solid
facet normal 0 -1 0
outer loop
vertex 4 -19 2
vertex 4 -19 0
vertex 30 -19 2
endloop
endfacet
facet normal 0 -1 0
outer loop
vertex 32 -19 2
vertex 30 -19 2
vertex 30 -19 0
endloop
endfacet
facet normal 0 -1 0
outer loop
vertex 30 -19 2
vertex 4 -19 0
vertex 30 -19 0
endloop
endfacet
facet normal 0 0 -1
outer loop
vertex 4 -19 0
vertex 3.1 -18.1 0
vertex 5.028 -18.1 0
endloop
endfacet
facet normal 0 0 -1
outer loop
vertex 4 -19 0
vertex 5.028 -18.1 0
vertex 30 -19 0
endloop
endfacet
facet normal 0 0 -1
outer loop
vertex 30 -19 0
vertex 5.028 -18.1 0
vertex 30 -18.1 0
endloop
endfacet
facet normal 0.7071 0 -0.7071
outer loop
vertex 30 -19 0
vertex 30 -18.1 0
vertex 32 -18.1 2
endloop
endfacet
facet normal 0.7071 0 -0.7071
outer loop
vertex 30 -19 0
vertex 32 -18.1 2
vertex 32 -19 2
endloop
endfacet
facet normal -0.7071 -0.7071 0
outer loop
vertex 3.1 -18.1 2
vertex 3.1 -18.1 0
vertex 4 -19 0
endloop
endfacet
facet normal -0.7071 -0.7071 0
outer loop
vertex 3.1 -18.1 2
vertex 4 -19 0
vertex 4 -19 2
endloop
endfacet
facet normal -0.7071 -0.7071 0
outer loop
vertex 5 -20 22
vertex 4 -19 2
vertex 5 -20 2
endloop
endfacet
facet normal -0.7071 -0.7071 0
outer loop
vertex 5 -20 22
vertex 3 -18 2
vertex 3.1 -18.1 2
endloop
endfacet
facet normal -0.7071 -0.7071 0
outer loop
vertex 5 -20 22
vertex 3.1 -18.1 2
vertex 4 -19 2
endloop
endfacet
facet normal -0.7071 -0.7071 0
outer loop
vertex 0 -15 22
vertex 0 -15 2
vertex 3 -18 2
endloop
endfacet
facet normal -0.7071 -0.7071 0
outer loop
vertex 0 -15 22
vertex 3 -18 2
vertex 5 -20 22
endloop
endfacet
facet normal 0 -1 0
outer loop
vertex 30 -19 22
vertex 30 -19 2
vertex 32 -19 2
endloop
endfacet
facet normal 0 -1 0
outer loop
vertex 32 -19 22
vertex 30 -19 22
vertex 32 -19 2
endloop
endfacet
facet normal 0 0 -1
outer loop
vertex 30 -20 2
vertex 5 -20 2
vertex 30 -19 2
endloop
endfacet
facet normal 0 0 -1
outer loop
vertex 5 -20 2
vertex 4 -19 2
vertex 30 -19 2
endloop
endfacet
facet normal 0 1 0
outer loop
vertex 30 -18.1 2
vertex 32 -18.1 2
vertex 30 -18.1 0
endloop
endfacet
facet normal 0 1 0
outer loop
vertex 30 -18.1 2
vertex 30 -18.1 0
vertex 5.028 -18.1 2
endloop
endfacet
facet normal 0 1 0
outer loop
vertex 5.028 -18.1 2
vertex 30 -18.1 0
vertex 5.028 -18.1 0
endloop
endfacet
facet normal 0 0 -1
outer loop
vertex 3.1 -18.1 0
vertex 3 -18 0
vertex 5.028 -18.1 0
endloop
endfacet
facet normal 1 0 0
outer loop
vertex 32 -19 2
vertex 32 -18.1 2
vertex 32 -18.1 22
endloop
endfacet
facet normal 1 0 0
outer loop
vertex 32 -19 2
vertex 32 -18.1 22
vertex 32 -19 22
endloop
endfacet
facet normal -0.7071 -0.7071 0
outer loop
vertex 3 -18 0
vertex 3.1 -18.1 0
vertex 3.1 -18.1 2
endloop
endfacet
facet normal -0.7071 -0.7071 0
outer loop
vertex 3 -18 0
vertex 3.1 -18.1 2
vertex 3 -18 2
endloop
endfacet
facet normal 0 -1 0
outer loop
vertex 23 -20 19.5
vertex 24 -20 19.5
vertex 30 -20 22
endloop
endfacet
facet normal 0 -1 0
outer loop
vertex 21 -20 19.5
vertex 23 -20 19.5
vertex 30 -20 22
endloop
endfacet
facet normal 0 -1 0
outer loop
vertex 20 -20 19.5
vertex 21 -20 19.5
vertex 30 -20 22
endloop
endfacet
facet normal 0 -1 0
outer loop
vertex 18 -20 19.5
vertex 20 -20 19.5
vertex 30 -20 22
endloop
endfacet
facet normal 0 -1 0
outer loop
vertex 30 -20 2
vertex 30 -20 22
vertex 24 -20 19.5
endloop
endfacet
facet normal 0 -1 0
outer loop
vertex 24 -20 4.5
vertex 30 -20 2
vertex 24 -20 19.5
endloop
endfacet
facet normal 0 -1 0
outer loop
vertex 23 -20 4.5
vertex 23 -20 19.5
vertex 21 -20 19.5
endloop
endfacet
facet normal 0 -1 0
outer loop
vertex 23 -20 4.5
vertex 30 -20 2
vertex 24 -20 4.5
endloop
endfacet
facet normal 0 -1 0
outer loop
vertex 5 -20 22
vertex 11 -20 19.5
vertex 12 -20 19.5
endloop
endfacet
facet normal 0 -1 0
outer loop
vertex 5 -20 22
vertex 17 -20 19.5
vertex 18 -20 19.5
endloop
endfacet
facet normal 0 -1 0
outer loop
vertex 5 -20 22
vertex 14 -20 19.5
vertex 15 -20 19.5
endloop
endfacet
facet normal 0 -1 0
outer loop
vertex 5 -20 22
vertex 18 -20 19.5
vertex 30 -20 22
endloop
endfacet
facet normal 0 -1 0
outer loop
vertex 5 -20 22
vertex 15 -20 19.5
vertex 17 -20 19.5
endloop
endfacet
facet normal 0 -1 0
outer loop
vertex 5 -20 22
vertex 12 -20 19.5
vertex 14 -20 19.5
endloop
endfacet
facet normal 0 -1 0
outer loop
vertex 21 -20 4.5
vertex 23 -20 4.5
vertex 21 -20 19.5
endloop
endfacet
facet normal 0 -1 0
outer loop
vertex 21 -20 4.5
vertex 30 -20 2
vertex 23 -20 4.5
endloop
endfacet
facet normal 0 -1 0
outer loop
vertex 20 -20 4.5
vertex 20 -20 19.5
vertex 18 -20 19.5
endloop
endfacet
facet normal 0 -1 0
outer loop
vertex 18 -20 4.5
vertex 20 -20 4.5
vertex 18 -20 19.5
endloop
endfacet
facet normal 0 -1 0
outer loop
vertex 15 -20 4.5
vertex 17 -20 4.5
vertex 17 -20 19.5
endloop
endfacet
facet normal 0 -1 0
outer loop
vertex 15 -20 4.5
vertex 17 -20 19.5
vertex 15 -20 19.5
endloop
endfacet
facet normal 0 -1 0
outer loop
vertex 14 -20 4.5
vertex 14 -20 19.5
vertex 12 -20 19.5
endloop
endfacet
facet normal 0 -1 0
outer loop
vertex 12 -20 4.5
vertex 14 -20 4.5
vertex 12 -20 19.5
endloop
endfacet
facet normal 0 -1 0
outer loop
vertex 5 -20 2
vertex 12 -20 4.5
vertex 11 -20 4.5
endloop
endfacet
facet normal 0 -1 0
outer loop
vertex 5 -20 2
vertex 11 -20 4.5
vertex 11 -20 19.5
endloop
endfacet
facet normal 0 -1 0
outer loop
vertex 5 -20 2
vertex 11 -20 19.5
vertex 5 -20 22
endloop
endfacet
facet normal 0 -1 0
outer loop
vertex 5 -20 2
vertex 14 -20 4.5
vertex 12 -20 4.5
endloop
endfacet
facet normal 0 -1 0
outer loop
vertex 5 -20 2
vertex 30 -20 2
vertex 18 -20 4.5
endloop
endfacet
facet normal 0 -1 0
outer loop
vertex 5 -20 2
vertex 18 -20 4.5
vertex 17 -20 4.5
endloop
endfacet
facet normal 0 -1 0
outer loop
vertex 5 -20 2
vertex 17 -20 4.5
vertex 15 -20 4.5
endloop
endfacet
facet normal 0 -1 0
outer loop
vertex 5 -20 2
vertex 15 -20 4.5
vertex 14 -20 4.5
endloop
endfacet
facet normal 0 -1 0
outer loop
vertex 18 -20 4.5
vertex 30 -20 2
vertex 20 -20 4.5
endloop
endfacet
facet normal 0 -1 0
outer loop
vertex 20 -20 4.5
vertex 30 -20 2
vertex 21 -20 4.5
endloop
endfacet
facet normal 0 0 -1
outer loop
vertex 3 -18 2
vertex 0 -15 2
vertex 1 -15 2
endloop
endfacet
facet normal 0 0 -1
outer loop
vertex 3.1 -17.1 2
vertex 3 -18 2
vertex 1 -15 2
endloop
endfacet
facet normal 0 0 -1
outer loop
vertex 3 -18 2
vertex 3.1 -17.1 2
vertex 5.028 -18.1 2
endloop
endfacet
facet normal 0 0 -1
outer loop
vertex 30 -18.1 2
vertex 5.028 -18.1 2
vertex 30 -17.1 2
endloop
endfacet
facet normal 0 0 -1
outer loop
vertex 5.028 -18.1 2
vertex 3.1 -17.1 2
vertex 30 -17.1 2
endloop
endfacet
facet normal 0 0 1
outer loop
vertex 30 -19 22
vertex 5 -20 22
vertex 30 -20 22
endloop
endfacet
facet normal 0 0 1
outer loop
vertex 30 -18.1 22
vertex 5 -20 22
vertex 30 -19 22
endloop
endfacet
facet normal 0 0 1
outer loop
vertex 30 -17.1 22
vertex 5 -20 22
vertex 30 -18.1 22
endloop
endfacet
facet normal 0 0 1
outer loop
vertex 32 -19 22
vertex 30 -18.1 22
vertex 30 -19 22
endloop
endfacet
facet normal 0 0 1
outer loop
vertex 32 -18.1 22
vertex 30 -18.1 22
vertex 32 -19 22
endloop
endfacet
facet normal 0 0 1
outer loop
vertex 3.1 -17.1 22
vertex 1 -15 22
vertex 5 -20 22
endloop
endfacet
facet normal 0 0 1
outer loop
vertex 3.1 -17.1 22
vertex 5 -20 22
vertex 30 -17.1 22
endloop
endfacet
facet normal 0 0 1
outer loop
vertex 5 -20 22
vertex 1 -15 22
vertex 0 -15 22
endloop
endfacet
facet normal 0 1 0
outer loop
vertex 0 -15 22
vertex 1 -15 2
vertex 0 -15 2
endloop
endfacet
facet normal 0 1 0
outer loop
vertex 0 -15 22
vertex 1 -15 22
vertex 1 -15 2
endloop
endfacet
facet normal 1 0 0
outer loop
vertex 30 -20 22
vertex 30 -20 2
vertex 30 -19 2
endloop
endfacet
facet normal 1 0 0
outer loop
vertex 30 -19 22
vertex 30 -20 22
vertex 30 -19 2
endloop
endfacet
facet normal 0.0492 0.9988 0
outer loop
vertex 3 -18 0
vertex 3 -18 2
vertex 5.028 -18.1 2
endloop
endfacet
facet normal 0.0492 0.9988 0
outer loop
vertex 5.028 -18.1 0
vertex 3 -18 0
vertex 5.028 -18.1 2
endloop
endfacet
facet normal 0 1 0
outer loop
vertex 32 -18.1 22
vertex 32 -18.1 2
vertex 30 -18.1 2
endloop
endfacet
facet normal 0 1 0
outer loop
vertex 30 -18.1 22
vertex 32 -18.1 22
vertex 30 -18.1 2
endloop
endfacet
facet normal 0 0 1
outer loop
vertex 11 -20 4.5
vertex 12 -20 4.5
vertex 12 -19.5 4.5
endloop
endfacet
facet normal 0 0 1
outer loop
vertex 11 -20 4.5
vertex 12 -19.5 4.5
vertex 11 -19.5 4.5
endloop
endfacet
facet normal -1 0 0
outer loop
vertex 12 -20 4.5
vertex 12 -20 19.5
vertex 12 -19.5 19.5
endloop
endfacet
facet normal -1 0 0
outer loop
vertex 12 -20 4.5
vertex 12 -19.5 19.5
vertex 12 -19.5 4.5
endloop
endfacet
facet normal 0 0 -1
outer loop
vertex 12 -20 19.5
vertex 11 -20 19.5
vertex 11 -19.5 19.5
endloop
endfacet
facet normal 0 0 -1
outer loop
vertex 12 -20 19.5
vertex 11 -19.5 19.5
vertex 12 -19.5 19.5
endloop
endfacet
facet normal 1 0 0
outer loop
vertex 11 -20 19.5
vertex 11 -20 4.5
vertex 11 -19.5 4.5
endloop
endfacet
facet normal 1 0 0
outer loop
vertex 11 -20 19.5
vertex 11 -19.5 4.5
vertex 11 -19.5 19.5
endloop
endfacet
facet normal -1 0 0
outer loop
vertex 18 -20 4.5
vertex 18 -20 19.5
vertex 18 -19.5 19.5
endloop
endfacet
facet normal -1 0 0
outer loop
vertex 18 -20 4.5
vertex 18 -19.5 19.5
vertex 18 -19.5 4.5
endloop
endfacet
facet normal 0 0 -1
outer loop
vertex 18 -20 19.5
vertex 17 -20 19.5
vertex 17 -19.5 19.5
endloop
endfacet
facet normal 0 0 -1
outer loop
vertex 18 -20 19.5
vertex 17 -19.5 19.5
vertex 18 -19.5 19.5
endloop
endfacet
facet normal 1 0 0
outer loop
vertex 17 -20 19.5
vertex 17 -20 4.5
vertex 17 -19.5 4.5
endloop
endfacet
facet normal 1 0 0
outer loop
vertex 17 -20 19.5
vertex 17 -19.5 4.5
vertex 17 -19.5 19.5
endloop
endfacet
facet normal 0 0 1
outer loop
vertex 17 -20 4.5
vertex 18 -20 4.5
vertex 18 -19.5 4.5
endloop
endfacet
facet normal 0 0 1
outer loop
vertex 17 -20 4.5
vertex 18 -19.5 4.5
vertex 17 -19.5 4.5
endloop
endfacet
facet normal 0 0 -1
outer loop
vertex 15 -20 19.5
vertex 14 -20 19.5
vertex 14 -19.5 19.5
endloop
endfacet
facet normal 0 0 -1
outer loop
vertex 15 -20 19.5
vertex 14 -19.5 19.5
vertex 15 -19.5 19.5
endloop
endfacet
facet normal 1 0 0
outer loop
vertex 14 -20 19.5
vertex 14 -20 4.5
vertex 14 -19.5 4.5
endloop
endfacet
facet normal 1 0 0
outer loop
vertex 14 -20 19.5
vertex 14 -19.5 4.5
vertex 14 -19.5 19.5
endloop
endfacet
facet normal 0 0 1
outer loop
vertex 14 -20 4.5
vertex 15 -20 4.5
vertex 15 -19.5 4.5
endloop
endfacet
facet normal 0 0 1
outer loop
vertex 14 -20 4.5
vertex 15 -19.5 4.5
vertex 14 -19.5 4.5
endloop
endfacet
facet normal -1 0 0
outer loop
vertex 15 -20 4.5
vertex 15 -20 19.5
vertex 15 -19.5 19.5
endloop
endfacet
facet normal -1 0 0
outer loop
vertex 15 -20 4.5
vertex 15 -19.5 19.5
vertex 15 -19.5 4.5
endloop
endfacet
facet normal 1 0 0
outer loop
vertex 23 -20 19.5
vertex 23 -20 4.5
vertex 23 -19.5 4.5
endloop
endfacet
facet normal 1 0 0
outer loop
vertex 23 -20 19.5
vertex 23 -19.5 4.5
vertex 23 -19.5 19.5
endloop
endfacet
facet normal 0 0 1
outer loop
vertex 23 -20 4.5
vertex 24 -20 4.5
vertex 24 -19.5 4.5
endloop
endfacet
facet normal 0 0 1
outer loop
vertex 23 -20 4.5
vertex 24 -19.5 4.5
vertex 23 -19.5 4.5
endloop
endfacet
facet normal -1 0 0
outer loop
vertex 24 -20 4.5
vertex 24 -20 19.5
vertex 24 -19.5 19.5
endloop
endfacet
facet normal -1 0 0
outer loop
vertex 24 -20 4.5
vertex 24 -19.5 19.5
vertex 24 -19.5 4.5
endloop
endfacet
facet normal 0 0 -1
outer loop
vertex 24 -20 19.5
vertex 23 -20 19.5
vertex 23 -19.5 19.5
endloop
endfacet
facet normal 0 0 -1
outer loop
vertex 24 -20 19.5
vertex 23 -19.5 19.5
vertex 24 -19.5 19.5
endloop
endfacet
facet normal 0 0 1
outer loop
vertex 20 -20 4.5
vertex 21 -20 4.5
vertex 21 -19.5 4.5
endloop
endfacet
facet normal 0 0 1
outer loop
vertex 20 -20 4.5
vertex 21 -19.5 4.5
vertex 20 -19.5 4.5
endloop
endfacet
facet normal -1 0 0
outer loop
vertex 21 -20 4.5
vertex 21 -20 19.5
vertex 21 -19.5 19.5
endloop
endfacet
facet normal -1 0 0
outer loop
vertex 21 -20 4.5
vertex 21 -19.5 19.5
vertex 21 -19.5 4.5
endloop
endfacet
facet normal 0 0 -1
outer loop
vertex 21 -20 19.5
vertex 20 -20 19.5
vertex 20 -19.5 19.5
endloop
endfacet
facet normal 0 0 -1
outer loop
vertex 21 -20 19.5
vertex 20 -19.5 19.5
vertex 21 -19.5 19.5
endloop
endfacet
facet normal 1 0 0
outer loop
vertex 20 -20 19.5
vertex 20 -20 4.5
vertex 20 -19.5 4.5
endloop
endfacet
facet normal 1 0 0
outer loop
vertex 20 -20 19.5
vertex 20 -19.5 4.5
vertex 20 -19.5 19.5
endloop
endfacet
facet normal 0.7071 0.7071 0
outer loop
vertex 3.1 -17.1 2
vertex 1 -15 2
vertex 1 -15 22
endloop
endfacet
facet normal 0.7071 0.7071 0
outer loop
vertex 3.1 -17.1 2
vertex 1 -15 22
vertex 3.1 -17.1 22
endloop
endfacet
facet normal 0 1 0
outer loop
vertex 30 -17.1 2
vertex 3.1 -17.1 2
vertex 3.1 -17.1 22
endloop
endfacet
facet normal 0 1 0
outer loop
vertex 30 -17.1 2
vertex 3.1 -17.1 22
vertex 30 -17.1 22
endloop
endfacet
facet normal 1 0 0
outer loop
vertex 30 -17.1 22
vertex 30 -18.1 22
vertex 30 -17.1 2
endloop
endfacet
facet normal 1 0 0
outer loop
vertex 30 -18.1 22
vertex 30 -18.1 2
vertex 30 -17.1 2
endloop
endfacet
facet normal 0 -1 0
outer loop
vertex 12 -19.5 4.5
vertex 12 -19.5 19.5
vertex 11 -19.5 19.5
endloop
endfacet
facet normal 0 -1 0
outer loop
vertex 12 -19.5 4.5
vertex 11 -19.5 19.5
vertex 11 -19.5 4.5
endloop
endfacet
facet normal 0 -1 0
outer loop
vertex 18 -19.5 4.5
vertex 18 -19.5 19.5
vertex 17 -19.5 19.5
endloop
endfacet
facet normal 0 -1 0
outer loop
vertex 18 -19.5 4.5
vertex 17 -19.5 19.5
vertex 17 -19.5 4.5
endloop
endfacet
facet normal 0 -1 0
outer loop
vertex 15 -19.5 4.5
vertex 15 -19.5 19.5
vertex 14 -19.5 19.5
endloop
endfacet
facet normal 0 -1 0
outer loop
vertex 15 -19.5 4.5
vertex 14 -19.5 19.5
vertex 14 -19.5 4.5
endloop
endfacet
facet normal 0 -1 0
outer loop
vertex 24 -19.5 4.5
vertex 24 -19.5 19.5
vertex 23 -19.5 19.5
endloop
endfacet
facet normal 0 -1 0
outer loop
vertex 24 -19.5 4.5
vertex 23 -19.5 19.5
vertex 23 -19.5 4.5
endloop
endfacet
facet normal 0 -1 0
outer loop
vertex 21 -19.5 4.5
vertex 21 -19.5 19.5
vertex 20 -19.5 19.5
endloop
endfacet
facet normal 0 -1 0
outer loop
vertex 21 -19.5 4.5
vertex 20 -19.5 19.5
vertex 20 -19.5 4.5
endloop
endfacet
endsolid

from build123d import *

# Parameters (mm, degrees)
SKETCH_W        = 32
SKETCH_H        = 20
PAD_DEPTH       = 22
CHAMFER_SIZE    = 5
SKETCH001_W     = 32
SKETCH001_H     = 15
POCKET_DEPTH    = 22
SKETCH002_W     = 32
SKETCH002_H     = 1
POCKET001_DEPTH = 2
SKETCH003_W     = 32
SKETCH003_H     = 3.1
POCKET002_DEPTH = 2
SKETCH004_W     = 2
SKETCH004_H     = 1
SKETCH004_H_2   = 3.1
POCKET003_DEPTH = 20
PAD001_DEPTH    = 2
POCKET004_DEPTH = 20
SKETCH007_W     = 1
SKETCH007_H     = 15
POCKET005_DEPTH = 0.5
CHAMFER001_SIZE = 2


with BuildPart() as part:
    # Sketch → Pad (new body)
    with BuildSketch(Plane.XY):
        with Locations((16, -10)):
            Rectangle(SKETCH_W, SKETCH_H)
    extrude(amount=PAD_DEPTH)

    # Chamfer
    chamfer_edges = [part.edges().sort_by_distance(p)[0] for p in [
        (0, -20, 11),
    ]]
    chamfer(chamfer_edges, length=CHAMFER_SIZE)

    # Sketch001 → Pocket (cut)
    with BuildSketch(Plane.XY.offset(22)):
        with Locations((16, -7.5)):
            Rectangle(SKETCH001_W, SKETCH001_H)
    extrude(amount=-POCKET_DEPTH, mode=Mode.SUBTRACT)

    # Sketch002 → Pocket001 (cut)
    with BuildSketch(Plane(origin=(0, 0, 0), x_dir=(1, 0, 0), z_dir=(0, 0, -1))):
        with Locations((16, 19.5)):
            Rectangle(SKETCH002_W, SKETCH002_H)
    extrude(amount=-POCKET001_DEPTH, mode=Mode.SUBTRACT)

    # Sketch003 → Pocket002 (cut)
    with BuildSketch(Plane(origin=(0, 0, 0), x_dir=(1, 0, 0), z_dir=(0, 0, -1))):
        with Locations((16, 16.55)):
            Rectangle(SKETCH003_W, SKETCH003_H)
    extrude(amount=-POCKET002_DEPTH, mode=Mode.SUBTRACT)

    # Sketch004 → Pocket003 (cut)
    with BuildSketch(Plane(origin=(0, 0, 2), x_dir=(1, 0, 0), z_dir=(0, 0, -1))):
        with Locations((31, 19.5)):
            Rectangle(SKETCH004_W, SKETCH004_H)
        with Locations((31, 16.55)):
            Rectangle(SKETCH004_W, SKETCH004_H_2)
    extrude(amount=-POCKET003_DEPTH, mode=Mode.SUBTRACT)

    # Sketch005 → Pad001 (new body)
    with BuildSketch(Plane(origin=(0, 0, 2), x_dir=(1, 0, 0), z_dir=(0, 0, -1))):
        Polygon((3.1, 18.1), (3, 18), (5.0281, 18.1), align=None)
    extrude(amount=PAD001_DEPTH)

    # Sketch006 → Pocket004 (cut)
    with BuildSketch(Plane(origin=(0, 0, 2), x_dir=(1, 0, 0), z_dir=(0, 0, -1))):
        Polygon((30, 15), (1, 15), (3.1, 17.1), (30, 17.1), align=None)
    extrude(amount=-POCKET004_DEPTH, mode=Mode.SUBTRACT)

    # Sketch007 → Pocket005 (cut)
    with BuildSketch(Plane.XZ.offset(20)):
        with Locations((11.5, 12)):
            Rectangle(SKETCH007_W, SKETCH007_H)
        with Locations((14.5, 12)):
            Rectangle(SKETCH007_W, SKETCH007_H)
        with Locations((17.5, 12)):
            Rectangle(SKETCH007_W, SKETCH007_H)
        with Locations((20.5, 12)):
            Rectangle(SKETCH007_W, SKETCH007_H)
        with Locations((23.5, 12)):
            Rectangle(SKETCH007_W, SKETCH007_H)
    extrude(amount=-POCKET005_DEPTH, mode=Mode.SUBTRACT)

    # Chamfer001
    chamfer001_edges = [part.edges().sort_by_distance(p)[0] for p in [
        (32, -18.55, 0),
    ]]
    chamfer(chamfer001_edges, length=CHAMFER001_SIZE)


solid = part.part
